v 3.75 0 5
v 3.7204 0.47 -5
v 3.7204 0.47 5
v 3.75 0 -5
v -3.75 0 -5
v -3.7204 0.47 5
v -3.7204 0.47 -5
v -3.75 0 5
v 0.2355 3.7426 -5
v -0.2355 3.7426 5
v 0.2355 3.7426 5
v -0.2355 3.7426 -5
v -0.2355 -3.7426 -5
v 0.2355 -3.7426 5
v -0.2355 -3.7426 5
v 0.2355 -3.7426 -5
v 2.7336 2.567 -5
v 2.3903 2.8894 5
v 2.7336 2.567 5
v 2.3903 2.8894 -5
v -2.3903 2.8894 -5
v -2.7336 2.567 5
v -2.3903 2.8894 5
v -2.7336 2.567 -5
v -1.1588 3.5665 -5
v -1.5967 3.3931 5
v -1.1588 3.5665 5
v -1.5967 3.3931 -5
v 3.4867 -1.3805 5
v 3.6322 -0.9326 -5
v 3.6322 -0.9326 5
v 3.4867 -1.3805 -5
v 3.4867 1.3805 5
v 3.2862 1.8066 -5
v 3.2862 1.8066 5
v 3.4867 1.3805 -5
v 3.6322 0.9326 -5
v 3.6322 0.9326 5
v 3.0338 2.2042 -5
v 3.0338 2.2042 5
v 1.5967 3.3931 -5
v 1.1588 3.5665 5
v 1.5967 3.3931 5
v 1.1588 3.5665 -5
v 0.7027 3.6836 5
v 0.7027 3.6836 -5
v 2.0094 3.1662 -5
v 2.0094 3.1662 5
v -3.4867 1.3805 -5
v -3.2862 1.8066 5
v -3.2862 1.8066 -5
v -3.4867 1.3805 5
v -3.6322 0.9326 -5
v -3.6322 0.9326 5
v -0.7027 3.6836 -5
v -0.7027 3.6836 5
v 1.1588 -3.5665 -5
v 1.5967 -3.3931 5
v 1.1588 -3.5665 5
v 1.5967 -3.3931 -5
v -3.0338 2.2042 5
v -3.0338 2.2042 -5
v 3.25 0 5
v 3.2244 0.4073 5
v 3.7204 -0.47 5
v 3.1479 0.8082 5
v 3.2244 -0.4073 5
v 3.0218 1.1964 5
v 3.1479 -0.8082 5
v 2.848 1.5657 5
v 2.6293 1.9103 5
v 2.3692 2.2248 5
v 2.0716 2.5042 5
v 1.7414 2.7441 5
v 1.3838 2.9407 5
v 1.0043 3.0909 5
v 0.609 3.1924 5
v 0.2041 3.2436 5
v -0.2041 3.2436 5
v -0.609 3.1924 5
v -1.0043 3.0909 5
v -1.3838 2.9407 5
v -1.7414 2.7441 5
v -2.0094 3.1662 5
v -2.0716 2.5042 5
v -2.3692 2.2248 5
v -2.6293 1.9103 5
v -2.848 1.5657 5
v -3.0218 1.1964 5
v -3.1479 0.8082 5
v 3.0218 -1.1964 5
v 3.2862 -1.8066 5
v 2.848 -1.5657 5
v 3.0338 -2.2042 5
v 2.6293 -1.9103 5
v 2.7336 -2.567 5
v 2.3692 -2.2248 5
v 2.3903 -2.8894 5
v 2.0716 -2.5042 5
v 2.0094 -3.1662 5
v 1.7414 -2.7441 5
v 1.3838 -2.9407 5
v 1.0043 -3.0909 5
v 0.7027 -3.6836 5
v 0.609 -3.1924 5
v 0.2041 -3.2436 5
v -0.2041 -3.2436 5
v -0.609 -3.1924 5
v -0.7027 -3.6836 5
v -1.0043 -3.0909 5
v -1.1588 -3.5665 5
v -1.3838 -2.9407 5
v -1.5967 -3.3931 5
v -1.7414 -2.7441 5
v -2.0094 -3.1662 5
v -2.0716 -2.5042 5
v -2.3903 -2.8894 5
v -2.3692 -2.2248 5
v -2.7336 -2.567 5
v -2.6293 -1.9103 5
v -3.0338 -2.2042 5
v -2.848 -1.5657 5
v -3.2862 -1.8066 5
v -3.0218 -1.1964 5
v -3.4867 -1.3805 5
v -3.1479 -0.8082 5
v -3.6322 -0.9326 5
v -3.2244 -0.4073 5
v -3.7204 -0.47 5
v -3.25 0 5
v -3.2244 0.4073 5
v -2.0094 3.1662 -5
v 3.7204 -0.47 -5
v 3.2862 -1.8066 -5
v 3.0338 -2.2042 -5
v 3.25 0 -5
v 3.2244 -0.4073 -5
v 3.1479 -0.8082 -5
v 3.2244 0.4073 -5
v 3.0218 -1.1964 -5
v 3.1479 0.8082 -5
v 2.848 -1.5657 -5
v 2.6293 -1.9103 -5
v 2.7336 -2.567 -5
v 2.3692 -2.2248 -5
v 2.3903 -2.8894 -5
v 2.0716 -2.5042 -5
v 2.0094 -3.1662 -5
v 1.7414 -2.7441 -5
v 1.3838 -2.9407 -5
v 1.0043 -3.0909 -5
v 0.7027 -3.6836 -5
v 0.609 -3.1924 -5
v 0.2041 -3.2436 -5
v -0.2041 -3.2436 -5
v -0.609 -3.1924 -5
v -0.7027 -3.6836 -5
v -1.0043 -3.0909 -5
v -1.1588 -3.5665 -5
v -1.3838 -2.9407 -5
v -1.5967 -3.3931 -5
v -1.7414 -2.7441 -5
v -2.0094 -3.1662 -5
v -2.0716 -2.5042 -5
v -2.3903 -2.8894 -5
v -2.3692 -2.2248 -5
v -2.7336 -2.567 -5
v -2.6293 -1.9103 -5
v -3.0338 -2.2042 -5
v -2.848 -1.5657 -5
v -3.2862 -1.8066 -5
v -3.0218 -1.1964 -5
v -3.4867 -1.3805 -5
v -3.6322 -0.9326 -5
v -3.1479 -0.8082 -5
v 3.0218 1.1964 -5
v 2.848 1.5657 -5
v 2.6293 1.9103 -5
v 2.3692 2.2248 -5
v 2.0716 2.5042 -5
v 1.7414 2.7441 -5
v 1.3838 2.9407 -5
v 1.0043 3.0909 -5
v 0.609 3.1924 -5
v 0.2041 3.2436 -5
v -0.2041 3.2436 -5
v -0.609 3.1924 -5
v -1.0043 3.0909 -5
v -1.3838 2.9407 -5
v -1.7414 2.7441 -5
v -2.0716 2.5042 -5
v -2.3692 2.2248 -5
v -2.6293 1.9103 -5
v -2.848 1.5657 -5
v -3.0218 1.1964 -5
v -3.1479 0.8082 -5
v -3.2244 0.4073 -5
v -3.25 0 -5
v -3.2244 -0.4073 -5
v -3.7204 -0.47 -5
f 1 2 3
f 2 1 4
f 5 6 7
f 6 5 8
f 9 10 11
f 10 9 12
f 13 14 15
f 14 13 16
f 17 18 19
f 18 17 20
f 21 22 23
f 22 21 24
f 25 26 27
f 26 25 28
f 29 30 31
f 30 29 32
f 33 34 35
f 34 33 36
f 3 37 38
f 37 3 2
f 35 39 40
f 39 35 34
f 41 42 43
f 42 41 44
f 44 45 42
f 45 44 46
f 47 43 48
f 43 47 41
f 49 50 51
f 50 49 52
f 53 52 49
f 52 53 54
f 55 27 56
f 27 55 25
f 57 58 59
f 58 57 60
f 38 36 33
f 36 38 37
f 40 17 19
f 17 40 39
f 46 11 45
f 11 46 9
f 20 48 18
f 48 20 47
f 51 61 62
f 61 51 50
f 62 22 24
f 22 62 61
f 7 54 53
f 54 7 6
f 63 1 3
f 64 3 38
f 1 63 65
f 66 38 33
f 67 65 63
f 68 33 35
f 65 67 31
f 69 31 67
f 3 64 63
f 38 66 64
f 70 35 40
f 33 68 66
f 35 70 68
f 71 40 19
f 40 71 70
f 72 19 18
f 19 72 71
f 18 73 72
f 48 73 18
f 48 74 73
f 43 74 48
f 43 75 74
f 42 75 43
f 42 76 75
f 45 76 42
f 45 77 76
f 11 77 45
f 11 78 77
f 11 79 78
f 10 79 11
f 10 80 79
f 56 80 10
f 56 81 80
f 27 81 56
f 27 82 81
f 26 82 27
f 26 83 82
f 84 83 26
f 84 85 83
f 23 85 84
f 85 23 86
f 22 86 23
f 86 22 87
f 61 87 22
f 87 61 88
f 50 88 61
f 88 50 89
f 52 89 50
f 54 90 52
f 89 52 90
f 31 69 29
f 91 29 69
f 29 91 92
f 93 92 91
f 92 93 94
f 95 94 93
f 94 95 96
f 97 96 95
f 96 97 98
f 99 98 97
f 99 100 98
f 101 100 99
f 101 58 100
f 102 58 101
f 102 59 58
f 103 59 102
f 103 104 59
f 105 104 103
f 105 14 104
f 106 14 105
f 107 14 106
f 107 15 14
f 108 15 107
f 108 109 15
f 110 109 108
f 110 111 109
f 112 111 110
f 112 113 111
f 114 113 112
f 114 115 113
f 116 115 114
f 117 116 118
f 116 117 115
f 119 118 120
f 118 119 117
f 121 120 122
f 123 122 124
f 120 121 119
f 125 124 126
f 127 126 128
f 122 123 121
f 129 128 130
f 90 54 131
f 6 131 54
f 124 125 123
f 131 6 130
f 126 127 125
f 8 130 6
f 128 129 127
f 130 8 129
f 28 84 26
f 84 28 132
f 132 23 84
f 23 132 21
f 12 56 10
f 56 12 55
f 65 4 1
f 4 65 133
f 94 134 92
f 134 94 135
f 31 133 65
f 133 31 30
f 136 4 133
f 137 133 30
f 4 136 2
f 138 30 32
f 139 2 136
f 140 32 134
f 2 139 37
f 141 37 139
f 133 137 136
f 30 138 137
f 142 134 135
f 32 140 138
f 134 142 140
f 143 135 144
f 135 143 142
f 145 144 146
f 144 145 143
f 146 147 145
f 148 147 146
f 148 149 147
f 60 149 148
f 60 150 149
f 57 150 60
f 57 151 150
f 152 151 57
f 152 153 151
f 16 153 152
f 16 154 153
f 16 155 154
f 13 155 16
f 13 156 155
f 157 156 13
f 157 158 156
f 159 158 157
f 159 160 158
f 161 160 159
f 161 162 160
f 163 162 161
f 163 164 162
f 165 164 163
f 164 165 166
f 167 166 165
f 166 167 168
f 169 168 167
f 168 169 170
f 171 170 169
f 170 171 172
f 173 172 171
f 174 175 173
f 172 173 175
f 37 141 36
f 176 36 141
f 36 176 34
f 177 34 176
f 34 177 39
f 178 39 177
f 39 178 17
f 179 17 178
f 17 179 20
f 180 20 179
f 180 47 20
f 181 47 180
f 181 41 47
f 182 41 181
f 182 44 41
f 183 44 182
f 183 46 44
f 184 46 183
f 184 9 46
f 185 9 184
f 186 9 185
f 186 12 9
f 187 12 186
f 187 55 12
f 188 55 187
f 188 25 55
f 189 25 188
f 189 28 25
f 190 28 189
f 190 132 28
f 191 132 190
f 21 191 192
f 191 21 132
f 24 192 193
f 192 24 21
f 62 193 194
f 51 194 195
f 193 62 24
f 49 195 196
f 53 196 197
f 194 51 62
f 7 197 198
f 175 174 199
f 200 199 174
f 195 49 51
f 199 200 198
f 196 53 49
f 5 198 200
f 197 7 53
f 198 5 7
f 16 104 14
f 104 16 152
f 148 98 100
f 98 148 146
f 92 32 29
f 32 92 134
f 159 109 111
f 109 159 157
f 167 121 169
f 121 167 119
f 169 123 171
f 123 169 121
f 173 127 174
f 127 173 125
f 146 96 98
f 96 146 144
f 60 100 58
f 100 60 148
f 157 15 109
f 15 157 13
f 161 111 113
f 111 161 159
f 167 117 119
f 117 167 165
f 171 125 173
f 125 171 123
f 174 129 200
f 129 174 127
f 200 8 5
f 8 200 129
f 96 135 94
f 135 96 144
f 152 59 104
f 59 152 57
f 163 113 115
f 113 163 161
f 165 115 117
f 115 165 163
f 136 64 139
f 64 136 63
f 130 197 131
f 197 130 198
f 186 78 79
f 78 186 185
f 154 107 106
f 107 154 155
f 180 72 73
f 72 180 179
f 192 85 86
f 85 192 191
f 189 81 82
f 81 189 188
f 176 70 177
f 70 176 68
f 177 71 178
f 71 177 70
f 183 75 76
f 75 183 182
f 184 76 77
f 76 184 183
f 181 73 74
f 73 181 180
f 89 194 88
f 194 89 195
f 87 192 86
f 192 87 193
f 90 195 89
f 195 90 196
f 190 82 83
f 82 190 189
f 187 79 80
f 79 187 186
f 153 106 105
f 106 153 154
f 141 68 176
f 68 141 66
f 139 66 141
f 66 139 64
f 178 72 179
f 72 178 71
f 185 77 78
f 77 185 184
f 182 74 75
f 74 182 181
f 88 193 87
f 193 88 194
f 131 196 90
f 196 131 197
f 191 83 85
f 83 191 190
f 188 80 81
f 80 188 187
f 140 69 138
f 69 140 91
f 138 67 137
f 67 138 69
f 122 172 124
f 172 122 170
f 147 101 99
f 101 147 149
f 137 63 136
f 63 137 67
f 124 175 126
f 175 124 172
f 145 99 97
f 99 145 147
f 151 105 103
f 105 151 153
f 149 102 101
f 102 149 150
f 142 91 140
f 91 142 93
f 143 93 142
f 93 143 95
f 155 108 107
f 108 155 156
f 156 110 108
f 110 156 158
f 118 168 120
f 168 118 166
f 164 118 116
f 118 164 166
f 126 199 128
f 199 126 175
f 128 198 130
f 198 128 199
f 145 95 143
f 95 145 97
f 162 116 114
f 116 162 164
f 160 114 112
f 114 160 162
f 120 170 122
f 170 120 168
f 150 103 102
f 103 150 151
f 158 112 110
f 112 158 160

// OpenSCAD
$fn = 50;


difference() {
	union() {
		translate(v = [0, 0, -5.0000000000]) {
			cylinder(h = 10, r = 3.7500000000);
		}
	}
	union() {
		translate(v = [0, 0, -100.0000000000]) {
			cylinder(h = 200, r = 3.2500000000);
		}
	}
}
